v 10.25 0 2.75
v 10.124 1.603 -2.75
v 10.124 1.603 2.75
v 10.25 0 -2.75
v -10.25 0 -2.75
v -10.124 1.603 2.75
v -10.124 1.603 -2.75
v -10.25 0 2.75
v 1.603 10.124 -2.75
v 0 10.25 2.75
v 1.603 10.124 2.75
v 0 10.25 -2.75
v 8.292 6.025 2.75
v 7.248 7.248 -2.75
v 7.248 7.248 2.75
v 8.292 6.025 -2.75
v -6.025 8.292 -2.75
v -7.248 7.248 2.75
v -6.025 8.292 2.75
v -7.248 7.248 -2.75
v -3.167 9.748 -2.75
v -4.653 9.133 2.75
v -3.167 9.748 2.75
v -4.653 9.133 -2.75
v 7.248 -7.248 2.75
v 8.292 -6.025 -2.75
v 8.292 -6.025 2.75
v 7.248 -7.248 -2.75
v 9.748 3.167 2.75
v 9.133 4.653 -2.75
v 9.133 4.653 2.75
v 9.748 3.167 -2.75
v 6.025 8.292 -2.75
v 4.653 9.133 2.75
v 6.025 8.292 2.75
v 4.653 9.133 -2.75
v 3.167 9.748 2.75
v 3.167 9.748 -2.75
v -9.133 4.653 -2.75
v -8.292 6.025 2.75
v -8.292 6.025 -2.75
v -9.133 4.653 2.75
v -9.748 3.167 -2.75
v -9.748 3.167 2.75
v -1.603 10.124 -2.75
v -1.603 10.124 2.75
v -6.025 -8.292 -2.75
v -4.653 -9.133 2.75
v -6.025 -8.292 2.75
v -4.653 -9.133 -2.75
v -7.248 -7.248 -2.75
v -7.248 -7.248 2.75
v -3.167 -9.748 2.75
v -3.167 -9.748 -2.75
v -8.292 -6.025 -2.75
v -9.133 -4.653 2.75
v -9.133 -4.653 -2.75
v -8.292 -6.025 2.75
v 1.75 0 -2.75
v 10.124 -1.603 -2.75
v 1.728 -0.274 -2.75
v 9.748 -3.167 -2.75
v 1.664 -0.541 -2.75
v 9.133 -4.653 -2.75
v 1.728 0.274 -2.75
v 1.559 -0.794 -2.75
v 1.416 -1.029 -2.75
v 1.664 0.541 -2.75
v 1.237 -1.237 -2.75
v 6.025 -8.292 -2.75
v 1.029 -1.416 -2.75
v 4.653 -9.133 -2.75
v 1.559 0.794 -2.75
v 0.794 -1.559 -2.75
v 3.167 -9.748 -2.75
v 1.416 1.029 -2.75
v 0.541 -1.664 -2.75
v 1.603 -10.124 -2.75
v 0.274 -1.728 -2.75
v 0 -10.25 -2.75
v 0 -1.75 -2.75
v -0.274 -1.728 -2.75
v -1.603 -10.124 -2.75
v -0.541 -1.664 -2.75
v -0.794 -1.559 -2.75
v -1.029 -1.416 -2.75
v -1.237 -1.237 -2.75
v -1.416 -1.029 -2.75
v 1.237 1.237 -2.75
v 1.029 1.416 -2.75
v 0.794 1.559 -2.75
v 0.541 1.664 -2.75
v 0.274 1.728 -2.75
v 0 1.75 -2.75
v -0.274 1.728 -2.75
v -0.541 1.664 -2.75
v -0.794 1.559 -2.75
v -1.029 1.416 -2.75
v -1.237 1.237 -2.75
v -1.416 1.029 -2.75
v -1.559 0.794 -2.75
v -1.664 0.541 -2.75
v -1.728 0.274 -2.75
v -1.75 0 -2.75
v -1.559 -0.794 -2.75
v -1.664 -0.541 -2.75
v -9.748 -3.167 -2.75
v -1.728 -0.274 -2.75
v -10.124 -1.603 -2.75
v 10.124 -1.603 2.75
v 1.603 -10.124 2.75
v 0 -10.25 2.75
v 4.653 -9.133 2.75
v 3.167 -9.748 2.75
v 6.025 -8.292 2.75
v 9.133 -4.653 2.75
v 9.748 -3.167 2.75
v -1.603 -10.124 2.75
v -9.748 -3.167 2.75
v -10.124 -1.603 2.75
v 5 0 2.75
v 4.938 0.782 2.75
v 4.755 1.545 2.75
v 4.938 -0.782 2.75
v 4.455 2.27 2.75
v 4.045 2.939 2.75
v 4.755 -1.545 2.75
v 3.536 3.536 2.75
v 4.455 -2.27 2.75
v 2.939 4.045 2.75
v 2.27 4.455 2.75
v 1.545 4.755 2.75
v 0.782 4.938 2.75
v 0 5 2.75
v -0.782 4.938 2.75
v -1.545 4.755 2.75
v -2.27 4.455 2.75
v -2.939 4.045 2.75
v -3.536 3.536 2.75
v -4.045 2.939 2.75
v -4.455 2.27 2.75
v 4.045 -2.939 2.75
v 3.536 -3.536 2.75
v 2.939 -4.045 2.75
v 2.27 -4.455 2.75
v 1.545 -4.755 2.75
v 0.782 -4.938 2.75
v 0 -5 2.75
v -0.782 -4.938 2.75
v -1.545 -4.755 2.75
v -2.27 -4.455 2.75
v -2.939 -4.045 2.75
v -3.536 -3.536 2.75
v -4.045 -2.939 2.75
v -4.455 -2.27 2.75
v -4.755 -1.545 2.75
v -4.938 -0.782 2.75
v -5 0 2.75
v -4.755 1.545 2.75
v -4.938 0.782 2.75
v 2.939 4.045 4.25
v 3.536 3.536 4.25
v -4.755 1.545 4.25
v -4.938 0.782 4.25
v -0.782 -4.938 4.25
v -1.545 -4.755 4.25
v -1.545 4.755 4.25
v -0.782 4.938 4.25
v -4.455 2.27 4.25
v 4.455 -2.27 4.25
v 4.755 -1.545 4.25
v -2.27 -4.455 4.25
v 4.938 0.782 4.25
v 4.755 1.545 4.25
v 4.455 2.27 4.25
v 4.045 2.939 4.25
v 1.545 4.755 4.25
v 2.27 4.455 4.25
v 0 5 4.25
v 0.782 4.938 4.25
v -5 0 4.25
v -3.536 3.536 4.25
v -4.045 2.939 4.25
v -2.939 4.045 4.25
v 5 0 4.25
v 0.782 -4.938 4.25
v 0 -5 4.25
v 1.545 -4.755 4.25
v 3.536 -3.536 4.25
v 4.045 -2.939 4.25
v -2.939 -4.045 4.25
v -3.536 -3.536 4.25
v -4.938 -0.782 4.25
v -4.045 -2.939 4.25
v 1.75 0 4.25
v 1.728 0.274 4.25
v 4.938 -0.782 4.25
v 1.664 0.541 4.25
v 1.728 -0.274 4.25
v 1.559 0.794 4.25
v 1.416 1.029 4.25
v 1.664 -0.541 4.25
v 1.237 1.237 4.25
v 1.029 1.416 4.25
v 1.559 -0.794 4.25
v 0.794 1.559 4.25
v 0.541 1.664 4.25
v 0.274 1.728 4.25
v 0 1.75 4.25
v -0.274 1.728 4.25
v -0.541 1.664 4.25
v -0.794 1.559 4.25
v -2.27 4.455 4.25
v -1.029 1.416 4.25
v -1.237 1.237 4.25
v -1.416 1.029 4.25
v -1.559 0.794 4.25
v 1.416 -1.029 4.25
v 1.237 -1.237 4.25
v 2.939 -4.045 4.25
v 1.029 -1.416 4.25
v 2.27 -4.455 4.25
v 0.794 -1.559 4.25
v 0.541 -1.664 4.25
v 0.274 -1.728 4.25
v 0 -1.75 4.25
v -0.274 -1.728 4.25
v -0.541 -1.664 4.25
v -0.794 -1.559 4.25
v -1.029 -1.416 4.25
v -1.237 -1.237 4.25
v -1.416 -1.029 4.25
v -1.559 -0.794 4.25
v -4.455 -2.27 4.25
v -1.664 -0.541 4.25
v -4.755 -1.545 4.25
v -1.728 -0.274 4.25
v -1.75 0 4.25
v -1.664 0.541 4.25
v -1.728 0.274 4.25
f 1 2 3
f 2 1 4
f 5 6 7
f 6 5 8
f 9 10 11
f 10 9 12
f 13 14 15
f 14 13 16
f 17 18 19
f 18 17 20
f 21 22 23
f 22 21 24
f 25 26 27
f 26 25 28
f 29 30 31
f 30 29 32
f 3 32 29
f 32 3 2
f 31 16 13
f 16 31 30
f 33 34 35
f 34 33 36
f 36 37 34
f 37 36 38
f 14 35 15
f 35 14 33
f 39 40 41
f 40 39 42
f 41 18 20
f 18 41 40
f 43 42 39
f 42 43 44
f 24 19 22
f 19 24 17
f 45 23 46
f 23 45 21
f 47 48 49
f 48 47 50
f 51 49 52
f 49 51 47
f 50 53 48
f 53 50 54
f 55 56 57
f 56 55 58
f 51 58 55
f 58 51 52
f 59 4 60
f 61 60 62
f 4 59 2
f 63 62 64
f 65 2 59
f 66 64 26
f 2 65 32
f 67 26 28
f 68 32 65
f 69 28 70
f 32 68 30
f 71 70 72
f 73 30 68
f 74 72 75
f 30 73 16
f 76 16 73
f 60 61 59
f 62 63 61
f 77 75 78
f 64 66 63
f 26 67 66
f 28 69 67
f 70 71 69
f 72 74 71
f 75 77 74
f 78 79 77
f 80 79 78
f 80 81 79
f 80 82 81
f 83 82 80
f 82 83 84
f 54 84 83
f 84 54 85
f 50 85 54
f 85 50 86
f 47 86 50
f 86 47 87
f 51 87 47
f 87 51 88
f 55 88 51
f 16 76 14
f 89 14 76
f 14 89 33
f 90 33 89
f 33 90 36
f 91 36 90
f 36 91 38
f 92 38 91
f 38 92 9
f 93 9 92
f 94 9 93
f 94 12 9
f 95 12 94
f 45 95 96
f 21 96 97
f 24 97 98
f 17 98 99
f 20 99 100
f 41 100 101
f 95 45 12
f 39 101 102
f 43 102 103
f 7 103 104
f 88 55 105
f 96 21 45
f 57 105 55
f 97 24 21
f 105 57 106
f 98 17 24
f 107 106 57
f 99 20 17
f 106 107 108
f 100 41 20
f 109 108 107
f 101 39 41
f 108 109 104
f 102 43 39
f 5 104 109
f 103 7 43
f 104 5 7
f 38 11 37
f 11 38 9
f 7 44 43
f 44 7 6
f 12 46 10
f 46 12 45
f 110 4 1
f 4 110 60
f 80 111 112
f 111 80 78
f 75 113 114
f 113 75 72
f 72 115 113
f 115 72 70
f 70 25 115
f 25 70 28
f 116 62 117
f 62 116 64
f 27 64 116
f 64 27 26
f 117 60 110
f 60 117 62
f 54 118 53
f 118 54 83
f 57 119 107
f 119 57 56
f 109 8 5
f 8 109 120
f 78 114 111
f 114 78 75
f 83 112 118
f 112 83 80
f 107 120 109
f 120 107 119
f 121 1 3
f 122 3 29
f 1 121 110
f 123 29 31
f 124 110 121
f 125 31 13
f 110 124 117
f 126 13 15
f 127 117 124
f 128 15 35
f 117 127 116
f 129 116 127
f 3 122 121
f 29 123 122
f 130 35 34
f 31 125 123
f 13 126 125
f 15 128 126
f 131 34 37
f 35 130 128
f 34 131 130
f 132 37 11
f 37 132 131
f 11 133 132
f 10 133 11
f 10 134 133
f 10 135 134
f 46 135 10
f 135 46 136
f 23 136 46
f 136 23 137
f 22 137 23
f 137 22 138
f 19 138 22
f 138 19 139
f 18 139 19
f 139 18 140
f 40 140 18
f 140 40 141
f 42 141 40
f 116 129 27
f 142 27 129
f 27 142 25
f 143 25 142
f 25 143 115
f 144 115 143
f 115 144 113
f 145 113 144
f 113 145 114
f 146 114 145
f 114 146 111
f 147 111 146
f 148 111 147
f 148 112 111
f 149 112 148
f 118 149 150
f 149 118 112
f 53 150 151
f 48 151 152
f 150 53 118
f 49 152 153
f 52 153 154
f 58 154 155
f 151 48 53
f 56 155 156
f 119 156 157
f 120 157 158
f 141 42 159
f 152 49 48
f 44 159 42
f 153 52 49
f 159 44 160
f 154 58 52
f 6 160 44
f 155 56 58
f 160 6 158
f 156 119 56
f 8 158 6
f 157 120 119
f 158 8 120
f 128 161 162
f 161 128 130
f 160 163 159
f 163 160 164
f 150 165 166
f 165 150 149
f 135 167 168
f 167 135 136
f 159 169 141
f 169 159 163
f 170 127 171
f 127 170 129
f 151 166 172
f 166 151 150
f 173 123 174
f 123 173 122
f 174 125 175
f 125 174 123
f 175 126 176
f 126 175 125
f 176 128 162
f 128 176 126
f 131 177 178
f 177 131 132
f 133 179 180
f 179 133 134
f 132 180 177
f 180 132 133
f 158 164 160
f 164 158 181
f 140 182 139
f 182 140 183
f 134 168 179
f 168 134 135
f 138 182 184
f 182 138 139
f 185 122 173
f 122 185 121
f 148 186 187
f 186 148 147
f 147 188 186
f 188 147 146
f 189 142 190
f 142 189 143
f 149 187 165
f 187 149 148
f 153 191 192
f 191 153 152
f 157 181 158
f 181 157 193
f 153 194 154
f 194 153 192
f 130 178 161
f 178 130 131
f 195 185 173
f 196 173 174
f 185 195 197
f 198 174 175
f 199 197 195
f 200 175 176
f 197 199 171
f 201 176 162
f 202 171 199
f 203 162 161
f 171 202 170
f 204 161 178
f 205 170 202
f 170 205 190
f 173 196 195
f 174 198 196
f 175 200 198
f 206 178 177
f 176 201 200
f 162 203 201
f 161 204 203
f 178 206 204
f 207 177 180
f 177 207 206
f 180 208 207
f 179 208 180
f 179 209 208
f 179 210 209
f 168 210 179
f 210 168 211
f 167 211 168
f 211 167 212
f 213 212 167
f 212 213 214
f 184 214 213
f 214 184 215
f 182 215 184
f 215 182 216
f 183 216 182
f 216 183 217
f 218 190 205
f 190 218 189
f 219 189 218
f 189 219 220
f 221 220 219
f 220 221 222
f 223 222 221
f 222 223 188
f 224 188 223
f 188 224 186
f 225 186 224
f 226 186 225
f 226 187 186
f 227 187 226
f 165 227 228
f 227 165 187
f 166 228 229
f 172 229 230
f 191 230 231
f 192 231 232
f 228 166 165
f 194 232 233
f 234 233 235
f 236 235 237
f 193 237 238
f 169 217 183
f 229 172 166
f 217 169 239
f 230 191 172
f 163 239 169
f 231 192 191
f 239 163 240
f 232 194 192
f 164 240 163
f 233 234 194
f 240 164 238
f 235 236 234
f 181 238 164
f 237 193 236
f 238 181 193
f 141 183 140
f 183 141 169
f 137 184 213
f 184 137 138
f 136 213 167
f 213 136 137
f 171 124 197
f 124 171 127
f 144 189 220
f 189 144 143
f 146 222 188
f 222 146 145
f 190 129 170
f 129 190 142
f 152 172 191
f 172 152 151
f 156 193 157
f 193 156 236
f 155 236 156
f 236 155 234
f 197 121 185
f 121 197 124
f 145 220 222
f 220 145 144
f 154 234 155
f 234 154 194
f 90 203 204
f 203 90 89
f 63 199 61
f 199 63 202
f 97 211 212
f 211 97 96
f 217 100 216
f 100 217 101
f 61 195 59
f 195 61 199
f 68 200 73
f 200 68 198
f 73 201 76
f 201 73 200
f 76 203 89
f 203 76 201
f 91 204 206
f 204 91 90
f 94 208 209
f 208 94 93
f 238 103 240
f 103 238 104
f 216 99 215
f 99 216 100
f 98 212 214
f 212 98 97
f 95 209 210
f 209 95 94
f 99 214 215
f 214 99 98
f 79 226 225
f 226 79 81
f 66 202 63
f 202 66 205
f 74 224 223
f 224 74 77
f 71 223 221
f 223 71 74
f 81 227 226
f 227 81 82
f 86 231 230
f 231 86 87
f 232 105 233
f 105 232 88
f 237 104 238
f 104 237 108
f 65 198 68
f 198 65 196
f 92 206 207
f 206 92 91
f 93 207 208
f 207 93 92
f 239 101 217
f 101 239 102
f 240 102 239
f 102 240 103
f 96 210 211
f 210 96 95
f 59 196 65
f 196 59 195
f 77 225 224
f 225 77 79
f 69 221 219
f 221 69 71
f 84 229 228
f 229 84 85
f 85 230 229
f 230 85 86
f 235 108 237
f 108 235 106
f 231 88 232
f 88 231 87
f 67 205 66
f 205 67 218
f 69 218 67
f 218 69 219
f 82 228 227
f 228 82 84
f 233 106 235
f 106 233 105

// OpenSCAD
// Schubladenführungsrad
$fn = 40;

difference()
{
    union()
    {
        cylinder(d=20.5,h=5.5, center=true);
        translate([0,0,1])
        cylinder(d=10,h=6.5, center=true);
    }
    cylinder(d=3.5,h=40, center=true);
}
